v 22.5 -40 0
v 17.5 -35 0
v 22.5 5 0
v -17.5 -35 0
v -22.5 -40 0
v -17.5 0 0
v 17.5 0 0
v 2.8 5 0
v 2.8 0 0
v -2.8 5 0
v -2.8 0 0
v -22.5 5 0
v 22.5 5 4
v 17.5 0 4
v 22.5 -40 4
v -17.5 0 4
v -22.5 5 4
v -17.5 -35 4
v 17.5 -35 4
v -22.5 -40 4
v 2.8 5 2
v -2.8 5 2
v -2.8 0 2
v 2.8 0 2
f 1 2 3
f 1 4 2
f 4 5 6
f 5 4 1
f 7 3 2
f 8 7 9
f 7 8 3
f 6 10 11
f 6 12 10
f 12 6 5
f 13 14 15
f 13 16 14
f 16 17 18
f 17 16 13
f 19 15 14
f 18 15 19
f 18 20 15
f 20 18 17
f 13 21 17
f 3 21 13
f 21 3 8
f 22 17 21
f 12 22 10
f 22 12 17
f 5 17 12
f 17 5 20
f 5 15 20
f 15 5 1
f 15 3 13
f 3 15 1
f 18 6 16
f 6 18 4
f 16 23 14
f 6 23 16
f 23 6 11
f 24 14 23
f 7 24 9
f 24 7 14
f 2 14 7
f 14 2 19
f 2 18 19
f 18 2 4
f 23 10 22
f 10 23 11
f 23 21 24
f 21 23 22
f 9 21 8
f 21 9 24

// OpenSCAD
//
// CLOCK 002 用　振り子オーナメント
//

clock_002_swing();

size=45;
w=10;


module clock_002_swing(size=45, w=10) {

    difference() {

        translate([-size/2, -size+w/2, 0])
        linear_extrude(4)
        difference() {
            square(size);
            translate([w/2,w/2,0])
                square(size-w);
        }

        translate([-5.6/2, 0, 0]) cube([5.6,50,2]);
    }

}
